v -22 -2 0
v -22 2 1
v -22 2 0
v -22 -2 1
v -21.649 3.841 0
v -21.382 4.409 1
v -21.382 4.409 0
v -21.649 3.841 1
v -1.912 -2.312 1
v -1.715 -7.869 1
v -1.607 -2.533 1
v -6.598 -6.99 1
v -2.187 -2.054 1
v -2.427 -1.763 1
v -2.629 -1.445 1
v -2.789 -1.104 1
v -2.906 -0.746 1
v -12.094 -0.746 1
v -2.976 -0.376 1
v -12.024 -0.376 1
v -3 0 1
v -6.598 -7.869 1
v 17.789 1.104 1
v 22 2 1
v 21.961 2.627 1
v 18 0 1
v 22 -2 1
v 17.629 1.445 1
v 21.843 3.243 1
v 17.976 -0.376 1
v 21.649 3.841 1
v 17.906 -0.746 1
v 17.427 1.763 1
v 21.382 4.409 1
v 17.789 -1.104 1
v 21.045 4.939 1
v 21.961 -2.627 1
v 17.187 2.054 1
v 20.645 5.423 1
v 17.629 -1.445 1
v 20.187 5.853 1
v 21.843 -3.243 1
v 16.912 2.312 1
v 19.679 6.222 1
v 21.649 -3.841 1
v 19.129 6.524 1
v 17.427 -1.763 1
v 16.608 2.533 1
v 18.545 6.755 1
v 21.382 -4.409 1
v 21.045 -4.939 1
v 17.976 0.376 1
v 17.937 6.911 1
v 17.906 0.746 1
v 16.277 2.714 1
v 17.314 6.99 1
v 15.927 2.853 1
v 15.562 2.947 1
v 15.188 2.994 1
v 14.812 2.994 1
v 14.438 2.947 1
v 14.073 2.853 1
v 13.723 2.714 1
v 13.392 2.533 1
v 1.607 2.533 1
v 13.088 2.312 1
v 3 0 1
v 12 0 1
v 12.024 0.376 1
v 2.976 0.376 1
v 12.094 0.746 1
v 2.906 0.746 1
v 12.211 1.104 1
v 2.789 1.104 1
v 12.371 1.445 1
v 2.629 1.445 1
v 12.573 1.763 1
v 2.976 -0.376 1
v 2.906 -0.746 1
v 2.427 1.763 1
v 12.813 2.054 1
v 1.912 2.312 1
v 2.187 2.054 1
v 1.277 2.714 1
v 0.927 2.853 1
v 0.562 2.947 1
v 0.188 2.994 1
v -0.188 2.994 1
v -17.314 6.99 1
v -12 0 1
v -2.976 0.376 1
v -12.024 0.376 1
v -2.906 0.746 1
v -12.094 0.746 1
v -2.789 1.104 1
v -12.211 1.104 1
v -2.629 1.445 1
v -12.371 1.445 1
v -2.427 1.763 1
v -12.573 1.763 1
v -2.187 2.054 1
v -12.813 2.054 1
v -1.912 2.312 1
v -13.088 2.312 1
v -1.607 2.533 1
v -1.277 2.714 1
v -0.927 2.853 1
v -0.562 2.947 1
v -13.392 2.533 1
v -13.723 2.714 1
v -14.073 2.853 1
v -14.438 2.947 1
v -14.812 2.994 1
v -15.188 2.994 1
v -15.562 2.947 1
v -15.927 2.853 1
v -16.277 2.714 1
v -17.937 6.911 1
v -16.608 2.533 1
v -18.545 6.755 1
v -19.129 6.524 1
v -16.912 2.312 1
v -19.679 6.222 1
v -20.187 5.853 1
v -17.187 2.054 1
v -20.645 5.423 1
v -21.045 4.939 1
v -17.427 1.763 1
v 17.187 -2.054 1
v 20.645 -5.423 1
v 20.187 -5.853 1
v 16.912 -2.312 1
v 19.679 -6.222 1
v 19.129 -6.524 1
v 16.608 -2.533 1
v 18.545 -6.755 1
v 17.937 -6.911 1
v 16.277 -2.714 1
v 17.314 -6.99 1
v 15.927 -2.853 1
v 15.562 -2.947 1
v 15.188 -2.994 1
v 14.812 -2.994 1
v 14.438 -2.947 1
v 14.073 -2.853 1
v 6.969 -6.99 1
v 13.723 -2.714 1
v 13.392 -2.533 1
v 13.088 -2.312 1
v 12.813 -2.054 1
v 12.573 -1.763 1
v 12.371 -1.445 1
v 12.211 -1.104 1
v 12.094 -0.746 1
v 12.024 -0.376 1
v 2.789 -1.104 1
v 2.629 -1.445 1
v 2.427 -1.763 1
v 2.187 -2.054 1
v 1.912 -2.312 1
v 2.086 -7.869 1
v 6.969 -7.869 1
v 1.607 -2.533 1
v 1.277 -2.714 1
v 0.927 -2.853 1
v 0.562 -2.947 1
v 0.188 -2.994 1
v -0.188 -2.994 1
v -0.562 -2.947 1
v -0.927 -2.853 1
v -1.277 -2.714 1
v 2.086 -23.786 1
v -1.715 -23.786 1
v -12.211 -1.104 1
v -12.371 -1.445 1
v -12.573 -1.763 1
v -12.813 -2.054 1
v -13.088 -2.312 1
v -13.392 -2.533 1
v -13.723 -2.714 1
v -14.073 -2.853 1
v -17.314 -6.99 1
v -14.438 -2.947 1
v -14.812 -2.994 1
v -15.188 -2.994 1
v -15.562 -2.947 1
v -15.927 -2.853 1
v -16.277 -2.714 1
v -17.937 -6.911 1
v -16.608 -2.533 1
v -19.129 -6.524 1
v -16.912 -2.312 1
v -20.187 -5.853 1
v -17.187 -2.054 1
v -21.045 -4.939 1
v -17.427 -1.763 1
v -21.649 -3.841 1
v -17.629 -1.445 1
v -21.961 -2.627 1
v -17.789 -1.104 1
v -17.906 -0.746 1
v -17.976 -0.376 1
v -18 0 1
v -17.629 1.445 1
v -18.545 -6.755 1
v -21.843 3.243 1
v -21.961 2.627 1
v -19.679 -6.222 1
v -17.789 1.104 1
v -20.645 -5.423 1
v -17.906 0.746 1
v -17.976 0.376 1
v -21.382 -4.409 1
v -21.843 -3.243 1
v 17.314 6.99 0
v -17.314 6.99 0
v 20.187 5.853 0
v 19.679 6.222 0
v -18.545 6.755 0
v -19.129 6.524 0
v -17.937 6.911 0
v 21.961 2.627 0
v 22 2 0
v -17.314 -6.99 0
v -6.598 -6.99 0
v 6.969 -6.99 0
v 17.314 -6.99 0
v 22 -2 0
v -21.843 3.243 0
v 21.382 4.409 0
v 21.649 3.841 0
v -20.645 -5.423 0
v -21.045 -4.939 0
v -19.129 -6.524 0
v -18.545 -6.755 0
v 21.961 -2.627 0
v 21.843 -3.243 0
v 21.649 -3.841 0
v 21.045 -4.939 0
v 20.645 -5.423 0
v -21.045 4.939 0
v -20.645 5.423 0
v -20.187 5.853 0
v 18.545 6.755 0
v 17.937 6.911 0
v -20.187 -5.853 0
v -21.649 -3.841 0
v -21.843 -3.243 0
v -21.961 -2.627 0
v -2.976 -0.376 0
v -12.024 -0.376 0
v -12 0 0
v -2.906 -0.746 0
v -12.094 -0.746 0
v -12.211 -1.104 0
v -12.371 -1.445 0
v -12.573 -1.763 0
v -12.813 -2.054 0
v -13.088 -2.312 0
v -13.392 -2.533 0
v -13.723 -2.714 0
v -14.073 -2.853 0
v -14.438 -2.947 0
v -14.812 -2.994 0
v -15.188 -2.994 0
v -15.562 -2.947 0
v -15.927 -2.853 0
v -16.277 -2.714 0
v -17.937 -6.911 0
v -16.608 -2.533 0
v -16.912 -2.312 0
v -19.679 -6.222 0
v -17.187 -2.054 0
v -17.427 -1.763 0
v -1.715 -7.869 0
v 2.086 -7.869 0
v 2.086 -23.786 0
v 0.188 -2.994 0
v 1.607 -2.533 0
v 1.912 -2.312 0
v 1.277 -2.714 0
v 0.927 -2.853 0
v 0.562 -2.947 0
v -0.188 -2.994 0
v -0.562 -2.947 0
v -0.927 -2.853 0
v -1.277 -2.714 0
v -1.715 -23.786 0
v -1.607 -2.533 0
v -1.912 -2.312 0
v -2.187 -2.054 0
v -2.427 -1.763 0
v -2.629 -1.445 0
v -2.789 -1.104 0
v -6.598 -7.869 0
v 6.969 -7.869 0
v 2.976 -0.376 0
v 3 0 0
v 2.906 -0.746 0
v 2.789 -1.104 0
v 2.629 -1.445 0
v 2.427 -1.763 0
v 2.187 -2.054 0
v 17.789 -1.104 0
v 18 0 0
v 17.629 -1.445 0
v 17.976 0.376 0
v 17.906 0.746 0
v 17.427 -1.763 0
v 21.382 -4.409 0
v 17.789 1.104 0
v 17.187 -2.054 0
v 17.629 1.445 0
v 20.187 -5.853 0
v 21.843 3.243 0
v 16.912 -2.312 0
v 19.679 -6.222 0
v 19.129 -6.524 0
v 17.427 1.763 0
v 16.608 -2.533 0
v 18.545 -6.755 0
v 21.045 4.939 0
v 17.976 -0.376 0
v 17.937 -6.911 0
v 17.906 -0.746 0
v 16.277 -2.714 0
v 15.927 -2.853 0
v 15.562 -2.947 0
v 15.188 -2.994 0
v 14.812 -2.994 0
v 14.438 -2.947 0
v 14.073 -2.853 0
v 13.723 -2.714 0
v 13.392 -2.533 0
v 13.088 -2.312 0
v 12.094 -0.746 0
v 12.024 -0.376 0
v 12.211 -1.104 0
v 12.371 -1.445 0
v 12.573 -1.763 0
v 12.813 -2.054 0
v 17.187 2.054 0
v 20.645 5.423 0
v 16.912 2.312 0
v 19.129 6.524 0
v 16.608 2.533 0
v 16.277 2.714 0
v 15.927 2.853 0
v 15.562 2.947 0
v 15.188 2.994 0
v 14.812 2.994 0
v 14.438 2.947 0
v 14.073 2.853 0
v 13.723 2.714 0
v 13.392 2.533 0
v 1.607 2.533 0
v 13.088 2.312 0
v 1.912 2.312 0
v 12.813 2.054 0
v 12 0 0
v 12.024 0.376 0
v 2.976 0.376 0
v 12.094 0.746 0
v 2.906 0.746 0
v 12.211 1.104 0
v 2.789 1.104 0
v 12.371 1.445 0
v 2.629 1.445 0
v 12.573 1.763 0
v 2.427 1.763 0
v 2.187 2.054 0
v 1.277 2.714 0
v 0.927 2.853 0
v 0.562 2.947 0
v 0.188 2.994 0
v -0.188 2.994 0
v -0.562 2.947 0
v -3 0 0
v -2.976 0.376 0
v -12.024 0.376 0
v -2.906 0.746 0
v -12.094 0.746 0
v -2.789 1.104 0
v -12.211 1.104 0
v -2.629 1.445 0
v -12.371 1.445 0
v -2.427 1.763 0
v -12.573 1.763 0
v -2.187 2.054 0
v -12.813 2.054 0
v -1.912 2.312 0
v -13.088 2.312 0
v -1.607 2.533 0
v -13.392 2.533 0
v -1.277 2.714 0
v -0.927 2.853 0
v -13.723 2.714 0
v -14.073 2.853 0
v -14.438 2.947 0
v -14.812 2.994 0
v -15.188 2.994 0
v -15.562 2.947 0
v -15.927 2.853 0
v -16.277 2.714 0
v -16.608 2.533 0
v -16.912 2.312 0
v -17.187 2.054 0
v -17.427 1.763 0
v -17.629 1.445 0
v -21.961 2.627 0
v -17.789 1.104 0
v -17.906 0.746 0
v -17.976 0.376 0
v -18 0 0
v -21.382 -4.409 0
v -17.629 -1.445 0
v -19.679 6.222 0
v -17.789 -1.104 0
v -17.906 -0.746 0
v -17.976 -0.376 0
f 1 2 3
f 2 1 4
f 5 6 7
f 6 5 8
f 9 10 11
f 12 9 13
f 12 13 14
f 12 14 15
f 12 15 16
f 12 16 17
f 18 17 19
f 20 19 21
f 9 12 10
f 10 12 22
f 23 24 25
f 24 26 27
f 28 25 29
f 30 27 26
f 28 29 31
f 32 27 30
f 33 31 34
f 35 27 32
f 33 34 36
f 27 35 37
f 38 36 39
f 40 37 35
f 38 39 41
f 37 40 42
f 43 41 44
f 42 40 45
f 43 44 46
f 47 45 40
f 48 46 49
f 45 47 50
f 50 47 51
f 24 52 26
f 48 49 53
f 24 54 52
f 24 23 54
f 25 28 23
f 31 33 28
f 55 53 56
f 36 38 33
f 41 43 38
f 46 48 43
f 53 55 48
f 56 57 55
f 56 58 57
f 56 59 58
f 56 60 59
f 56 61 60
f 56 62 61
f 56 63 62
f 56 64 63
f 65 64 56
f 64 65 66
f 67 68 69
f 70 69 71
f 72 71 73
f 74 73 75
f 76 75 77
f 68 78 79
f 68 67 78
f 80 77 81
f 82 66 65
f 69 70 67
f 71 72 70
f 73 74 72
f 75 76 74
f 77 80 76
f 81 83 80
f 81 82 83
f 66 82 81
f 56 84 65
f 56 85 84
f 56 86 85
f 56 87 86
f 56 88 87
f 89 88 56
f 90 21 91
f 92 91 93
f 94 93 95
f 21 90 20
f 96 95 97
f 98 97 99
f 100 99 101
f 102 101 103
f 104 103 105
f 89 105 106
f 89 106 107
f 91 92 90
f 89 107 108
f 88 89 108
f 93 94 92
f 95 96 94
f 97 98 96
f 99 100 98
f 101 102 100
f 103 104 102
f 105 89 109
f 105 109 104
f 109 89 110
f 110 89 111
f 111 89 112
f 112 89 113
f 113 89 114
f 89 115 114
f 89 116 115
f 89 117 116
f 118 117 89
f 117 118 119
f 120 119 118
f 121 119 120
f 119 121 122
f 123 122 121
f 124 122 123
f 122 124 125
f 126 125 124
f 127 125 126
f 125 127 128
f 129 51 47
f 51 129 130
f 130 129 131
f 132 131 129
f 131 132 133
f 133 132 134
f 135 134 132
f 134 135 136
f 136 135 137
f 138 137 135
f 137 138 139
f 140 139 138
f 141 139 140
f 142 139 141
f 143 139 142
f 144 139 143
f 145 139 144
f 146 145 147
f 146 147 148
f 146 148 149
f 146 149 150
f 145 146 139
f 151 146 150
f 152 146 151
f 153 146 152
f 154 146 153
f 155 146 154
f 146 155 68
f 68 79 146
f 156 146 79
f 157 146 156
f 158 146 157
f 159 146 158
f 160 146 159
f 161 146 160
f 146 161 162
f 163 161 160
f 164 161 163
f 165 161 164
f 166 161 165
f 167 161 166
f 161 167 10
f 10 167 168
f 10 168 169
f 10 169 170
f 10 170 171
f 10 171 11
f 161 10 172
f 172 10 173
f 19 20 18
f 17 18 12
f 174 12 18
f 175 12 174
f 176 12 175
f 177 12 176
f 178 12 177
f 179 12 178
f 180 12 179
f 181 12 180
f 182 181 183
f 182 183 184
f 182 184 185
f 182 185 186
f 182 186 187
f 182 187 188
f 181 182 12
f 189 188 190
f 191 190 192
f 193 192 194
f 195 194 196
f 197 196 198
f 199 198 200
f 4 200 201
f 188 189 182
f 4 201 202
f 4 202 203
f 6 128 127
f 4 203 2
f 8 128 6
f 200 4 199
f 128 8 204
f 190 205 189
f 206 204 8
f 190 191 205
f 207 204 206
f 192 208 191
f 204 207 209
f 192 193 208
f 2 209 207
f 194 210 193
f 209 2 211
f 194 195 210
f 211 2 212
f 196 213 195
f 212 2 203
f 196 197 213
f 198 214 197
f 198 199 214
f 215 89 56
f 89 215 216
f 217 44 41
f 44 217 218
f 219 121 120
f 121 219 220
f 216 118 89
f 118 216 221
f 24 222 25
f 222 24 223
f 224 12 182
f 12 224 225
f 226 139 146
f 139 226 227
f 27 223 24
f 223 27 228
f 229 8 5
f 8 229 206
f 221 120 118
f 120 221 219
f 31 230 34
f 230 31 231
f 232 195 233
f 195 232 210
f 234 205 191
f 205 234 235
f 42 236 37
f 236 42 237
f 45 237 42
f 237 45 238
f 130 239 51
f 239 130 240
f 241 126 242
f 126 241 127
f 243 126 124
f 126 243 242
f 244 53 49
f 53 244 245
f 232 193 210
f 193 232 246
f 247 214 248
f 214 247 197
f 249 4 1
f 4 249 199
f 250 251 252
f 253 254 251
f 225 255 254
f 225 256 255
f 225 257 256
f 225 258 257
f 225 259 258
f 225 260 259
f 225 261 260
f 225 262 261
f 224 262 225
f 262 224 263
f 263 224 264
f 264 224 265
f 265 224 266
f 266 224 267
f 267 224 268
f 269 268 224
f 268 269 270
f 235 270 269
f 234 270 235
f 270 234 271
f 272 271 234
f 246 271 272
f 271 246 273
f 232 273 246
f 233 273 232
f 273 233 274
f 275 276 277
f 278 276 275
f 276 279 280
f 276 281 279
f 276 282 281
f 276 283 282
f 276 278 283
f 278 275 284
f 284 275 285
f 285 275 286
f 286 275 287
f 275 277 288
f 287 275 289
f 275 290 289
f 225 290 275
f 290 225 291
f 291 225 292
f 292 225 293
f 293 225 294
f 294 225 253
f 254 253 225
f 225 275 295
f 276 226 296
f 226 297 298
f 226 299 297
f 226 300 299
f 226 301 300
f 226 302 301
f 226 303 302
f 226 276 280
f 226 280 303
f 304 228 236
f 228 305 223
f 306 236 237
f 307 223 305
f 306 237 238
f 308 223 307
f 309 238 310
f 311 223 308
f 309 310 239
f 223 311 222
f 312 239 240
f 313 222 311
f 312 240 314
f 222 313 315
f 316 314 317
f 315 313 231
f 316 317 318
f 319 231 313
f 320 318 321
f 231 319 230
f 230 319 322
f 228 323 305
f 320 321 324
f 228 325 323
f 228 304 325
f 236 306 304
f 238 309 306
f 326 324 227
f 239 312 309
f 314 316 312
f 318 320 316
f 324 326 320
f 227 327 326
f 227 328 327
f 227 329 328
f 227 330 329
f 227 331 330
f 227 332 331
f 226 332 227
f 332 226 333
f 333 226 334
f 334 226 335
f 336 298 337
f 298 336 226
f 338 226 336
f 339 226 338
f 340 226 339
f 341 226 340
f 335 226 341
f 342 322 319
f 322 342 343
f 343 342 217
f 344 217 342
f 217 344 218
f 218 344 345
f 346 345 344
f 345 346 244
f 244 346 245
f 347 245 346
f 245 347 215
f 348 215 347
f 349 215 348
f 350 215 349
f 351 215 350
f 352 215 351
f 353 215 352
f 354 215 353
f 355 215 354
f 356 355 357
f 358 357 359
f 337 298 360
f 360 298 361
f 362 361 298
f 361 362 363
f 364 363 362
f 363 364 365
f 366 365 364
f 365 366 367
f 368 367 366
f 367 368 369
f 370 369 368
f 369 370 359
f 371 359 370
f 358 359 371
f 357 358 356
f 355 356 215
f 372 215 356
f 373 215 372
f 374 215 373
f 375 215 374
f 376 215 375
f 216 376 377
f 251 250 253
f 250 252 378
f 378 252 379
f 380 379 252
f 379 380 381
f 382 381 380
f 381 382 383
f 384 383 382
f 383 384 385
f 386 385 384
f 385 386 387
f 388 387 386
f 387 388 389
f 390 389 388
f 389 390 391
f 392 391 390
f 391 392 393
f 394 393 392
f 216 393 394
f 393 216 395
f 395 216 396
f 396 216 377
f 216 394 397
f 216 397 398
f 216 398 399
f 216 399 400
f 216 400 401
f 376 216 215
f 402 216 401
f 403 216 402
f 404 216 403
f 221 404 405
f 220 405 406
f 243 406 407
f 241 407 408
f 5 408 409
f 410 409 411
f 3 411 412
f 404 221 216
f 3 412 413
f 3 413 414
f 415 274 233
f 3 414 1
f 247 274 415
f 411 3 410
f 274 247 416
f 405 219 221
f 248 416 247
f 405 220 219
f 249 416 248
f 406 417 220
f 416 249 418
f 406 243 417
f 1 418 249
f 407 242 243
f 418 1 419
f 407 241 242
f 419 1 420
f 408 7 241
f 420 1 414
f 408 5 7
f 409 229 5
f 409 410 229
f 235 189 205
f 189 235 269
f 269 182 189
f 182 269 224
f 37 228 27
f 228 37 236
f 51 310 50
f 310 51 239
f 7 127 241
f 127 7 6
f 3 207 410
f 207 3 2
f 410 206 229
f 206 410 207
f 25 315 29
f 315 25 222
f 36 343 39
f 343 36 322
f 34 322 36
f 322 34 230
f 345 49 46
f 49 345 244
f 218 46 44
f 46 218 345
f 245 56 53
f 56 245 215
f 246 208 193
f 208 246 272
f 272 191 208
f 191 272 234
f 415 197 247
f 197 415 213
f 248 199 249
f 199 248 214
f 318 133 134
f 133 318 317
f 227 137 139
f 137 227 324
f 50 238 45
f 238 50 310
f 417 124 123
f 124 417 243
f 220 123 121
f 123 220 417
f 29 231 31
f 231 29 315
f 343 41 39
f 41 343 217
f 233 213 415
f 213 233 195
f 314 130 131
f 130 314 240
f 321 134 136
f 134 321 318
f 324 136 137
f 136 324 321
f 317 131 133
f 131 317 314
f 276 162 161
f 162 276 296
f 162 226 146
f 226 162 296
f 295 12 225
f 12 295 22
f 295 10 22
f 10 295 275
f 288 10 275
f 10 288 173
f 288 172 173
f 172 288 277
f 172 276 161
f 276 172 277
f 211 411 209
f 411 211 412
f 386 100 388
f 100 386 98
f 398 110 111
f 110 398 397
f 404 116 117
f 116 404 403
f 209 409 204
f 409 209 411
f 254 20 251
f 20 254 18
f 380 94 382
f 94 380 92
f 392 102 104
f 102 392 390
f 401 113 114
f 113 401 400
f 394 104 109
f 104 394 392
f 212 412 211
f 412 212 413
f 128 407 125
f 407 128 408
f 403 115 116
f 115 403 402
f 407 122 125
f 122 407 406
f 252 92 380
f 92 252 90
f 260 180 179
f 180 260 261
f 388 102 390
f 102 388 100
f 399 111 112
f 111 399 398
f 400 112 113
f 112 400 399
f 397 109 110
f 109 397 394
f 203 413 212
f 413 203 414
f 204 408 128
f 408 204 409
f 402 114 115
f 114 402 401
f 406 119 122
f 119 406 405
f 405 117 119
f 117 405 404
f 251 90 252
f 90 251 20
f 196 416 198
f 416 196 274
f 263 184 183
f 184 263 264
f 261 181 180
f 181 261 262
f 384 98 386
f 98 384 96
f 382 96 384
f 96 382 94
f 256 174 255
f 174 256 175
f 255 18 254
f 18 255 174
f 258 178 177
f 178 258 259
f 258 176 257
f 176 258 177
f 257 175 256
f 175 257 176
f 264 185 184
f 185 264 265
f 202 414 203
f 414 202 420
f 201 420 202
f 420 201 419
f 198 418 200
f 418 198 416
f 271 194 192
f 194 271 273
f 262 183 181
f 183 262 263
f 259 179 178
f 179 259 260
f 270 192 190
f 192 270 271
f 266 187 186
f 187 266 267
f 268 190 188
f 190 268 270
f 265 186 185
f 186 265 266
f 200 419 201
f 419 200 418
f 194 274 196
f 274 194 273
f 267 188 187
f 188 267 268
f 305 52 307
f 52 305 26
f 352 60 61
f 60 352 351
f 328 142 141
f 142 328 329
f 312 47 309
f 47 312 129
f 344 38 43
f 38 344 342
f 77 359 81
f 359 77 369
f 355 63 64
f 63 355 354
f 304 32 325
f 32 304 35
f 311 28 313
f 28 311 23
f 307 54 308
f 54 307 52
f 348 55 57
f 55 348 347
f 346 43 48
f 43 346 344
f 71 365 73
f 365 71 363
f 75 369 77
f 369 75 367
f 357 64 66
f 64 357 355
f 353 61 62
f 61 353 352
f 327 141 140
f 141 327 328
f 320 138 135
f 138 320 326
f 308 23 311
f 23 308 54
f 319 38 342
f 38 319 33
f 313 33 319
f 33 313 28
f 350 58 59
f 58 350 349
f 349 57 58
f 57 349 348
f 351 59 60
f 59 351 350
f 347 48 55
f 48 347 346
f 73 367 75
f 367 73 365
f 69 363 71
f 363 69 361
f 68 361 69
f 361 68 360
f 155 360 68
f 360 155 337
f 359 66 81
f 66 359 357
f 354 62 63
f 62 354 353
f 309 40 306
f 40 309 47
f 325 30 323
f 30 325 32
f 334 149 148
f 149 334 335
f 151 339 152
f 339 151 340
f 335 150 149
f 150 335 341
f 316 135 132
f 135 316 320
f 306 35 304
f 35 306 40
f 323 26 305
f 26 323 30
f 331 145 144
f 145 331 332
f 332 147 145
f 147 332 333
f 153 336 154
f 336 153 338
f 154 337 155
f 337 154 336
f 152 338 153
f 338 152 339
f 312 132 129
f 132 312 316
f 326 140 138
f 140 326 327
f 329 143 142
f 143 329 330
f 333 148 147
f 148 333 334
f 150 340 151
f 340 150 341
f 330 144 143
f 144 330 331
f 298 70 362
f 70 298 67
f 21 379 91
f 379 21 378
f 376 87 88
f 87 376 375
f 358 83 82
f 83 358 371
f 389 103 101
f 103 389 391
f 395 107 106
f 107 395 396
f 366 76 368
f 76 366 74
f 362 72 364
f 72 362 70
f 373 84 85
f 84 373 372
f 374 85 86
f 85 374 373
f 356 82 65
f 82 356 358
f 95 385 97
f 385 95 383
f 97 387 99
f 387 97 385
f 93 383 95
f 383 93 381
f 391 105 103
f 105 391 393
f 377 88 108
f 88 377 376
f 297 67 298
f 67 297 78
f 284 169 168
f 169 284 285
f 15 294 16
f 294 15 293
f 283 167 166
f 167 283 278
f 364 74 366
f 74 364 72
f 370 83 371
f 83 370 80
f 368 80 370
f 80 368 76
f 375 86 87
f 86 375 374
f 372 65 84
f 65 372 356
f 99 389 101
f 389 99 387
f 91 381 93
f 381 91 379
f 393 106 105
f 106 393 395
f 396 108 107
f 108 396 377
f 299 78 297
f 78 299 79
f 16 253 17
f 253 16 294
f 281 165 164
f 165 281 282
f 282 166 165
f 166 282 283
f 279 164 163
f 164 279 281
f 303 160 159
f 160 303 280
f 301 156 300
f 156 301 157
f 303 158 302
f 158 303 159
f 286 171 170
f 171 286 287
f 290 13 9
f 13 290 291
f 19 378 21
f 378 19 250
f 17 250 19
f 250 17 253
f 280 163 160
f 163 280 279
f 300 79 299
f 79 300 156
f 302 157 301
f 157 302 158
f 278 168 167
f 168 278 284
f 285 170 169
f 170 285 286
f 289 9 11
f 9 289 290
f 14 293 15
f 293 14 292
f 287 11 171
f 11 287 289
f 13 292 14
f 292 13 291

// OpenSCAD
$fn = 50;


difference() {
	union() {
		translate(v = [0, 0, 0]) {
			rotate(a = [0, 0, 0]) {
				hull() {
					translate(v = [-17.0000000000, 2.0000000000, 0]) {
						rotate(a = [0, 0, 0]) {
							translate(v = [0, 0, 0]) {
								rotate(a = [0, 0, 0]) {
									cylinder(h = 1, r = 5);
								}
							}
						}
					}
					translate(v = [17.0000000000, 2.0000000000, 0]) {
						rotate(a = [0, 0, 0]) {
							translate(v = [0, 0, 0]) {
								rotate(a = [0, 0, 0]) {
									cylinder(h = 1, r = 5);
								}
							}
						}
					}
					translate(v = [-17.0000000000, -2.0000000000, 0]) {
						rotate(a = [0, 0, 0]) {
							translate(v = [0, 0, 0]) {
								rotate(a = [0, 0, 0]) {
									cylinder(h = 1, r = 5);
								}
							}
						}
					}
					translate(v = [17.0000000000, -2.0000000000, 0]) {
						rotate(a = [0, 0, 0]) {
							translate(v = [0, 0, 0]) {
								rotate(a = [0, 0, 0]) {
									cylinder(h = 1, r = 5);
								}
							}
						}
					}
				}
			}
		}
		translate(v = [0, -5, 0]) {
			rotate(a = [0, 0, 0]) {
				linear_extrude(height = 1) {
					text(font = "DejaVu Sans Mono:style=Bold", halign = "center", size = 19.0000000000, text = "T", valign = "top");
				}
			}
		}
	}
	union() {
		translate(v = [-15.0000000000, 0.0000000000, -125.0000000000]) {
			rotate(a = [0, 0, 0]) {
				cylinder(h = 250, r = 3.0000000000);
			}
		}
		translate(v = [15.0000000000, 0.0000000000, -125.0000000000]) {
			rotate(a = [0, 0, 0]) {
				cylinder(h = 250, r = 3.0000000000);
			}
		}
		translate(v = [15.0000000000, 0.0000000000, -125.0000000000]) {
			rotate(a = [0, 0, 0]) {
				cylinder(h = 250, r = 3.0000000000);
			}
		}
		translate(v = [0, 0, -125.0000000000]) {
			rotate(a = [0, 0, 0]) {
				cylinder(h = 250, r = 3.0000000000);
			}
		}
	}
}
